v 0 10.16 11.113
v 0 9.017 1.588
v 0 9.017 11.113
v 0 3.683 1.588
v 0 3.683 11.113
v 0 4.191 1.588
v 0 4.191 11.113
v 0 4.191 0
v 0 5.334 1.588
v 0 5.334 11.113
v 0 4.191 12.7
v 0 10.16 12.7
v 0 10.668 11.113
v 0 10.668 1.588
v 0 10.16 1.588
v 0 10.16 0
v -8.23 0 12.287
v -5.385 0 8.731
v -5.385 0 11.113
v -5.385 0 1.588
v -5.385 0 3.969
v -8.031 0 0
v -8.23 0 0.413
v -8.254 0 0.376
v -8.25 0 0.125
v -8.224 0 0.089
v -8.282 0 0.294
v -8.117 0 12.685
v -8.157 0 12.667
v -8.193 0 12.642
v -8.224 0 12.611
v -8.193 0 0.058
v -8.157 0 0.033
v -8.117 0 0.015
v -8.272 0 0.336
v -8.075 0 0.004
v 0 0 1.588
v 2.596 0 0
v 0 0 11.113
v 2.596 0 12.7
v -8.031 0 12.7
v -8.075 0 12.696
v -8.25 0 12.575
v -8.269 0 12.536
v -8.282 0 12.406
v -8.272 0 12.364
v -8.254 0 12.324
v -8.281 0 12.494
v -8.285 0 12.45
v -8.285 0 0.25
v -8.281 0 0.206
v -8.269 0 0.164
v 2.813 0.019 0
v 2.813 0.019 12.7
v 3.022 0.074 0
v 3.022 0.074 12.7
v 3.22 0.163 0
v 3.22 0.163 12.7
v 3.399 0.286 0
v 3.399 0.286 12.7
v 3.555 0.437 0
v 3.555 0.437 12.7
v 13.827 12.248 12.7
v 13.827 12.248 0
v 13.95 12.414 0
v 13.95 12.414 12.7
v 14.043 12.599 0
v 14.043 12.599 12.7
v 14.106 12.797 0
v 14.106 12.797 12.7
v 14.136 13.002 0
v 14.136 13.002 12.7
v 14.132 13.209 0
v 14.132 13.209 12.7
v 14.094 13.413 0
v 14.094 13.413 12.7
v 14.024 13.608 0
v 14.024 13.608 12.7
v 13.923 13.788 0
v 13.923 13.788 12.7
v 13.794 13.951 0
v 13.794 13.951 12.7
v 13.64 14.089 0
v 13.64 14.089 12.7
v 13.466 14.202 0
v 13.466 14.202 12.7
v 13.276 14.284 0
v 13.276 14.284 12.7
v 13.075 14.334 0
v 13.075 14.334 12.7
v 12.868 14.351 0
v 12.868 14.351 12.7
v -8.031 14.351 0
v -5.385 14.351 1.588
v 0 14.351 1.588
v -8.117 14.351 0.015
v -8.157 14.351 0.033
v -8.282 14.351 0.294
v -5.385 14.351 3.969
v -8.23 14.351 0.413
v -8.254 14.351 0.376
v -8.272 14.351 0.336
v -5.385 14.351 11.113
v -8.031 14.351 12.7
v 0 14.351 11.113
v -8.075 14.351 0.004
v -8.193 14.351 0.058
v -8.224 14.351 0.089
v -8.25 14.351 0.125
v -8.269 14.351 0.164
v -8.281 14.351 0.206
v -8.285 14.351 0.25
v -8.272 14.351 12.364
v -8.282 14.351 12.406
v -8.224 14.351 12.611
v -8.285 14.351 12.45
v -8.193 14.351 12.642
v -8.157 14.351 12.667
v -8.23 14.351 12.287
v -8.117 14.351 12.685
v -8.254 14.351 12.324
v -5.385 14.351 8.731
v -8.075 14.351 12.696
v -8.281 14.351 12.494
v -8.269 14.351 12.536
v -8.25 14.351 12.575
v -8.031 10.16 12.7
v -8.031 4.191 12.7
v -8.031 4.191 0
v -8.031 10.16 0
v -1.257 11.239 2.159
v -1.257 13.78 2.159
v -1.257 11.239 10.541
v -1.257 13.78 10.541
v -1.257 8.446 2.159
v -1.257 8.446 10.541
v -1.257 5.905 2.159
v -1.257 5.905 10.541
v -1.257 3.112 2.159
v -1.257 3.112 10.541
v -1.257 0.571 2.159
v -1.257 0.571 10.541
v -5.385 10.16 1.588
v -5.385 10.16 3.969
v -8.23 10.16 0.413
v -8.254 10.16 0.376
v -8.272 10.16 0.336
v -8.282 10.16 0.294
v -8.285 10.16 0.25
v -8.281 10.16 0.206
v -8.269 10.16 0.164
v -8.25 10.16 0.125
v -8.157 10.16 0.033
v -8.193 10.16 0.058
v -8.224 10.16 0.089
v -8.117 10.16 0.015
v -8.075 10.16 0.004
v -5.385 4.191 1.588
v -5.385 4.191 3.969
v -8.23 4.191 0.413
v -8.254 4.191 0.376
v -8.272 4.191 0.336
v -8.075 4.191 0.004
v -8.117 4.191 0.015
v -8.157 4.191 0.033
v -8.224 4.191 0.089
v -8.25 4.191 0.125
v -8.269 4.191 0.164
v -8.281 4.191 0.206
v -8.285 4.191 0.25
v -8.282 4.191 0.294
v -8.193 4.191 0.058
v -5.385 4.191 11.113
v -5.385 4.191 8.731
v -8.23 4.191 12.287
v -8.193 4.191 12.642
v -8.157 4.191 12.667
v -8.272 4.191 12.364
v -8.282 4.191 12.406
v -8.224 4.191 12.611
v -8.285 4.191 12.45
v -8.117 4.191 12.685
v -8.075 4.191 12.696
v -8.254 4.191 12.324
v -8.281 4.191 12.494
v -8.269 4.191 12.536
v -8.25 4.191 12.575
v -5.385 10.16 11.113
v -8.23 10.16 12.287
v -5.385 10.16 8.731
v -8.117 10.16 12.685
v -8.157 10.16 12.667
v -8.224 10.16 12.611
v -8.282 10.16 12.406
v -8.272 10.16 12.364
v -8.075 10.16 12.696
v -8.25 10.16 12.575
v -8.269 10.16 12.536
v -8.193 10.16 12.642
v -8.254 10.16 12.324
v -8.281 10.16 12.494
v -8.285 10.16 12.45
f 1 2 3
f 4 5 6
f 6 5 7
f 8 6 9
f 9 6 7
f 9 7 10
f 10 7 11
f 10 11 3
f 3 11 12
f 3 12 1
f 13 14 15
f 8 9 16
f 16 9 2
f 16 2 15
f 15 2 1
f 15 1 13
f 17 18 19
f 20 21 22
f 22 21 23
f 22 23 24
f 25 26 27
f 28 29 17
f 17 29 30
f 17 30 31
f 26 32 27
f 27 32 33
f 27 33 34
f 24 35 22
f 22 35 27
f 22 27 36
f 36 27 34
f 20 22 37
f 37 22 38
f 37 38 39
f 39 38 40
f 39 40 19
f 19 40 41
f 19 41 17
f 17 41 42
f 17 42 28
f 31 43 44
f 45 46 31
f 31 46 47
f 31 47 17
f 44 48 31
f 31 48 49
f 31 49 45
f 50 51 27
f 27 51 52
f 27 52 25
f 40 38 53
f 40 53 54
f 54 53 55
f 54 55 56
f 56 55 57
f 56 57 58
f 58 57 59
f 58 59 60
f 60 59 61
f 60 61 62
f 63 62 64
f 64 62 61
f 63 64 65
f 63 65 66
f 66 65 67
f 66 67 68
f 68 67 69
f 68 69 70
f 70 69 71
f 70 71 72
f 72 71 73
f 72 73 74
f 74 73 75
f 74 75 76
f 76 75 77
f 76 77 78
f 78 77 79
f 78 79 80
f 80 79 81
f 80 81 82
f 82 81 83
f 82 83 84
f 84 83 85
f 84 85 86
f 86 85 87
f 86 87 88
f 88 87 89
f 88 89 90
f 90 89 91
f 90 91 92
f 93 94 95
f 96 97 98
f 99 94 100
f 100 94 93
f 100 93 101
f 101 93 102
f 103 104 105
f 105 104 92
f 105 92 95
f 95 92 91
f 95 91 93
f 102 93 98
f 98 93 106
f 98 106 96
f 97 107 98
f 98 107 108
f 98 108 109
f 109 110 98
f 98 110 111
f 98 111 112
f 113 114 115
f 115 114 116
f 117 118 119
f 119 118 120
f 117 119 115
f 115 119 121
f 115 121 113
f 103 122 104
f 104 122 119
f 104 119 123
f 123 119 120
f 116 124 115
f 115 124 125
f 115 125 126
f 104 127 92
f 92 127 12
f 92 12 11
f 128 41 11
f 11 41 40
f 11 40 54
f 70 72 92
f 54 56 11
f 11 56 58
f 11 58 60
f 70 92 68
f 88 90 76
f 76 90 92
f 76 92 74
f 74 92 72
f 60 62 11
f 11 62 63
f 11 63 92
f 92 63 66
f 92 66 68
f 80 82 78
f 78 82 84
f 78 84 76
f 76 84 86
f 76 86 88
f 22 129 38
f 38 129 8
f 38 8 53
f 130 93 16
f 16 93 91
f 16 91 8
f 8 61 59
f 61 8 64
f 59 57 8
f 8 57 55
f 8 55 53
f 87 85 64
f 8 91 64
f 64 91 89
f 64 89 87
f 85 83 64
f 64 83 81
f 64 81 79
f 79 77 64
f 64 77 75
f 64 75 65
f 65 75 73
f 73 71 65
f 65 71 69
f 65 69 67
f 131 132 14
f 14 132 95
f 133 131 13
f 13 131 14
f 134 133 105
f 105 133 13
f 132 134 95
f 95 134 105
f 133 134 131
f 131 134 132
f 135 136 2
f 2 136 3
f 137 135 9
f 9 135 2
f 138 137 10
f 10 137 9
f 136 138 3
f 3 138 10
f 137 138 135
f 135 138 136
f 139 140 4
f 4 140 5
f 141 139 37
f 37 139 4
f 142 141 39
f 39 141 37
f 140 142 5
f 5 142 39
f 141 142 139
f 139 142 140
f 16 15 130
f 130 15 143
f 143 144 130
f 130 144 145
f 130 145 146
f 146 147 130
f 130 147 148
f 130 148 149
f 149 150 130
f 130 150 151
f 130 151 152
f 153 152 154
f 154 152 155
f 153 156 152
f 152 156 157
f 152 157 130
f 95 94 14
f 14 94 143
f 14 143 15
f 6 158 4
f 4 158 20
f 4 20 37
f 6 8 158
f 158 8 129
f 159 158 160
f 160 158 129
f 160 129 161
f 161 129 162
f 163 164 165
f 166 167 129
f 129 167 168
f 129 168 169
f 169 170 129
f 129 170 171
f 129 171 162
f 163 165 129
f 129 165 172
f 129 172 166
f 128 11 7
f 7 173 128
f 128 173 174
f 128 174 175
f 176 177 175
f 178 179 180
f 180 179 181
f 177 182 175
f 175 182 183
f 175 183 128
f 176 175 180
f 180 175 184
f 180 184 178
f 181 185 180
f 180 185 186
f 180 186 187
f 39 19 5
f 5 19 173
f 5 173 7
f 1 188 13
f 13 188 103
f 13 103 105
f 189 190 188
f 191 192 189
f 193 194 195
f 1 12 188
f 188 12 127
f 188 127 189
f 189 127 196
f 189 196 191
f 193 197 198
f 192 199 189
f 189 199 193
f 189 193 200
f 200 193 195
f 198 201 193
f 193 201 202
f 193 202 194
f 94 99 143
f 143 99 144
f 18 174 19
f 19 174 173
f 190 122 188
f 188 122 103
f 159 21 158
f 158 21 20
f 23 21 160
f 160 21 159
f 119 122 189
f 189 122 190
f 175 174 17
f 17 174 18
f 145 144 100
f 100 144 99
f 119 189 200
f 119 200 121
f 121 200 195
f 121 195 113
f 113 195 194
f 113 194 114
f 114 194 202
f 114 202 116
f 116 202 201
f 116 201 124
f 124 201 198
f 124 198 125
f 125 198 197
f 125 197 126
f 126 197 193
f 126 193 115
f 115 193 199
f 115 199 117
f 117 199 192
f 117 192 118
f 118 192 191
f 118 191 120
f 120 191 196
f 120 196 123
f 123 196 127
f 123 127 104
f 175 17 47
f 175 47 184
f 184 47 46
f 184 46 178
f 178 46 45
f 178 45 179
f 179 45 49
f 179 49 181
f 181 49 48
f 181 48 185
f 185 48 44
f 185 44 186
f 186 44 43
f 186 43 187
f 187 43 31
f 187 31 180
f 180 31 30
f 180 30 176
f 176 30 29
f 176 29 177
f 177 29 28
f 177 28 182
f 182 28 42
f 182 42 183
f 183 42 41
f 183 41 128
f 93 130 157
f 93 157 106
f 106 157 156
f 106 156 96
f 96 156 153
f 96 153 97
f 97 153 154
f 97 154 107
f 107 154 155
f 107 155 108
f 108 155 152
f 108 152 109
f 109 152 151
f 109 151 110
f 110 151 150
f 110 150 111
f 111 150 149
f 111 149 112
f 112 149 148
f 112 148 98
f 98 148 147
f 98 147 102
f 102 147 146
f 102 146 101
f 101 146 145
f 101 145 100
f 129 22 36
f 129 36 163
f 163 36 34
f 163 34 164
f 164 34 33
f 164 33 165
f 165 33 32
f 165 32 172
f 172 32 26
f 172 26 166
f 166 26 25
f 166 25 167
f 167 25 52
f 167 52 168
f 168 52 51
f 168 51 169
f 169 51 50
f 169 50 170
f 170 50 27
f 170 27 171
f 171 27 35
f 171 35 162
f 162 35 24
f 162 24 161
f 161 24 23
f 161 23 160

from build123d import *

# Parameters (mm, degrees)
BOSS_EXTRUDE1_DEPTH           = 12.7
SKETCH3_W                     = 9.525
SKETCH3_H                     = 3.683
BOSS_EXTRUDE2_DEPTH           = 1.2573
BOSS_EXTRUDE2_DRAFT           = 24.44
BOSS_EXTRUDE2_PROFILE_2_DEPTH = 1.2573
BOSS_EXTRUDE2_PROFILE_2_DRAFT = 24.44
BOSS_EXTRUDE2_PROFILE_3_DEPTH = 1.2573
BOSS_EXTRUDE2_PROFILE_3_DRAFT = 24.44
SKETCH2_W                     = 1.5875
SKETCH2_H                     = 4.191
BOSS_EXTRUDE3_DEPTH           = 5.3848
SKETCH4_W                     = 3.96875
SKETCH4_H                     = 4.191
BOSS_EXTRUDE4_DEPTH           = 3.175
CUT_EXTRUDE1_START            = -14.351
CUT_EXTRUDE1_DEPTH            = 14.351
FILLET1_R                     = 0.254


with BuildPart() as part:
    # Sketch1 → Boss-Extrude1 (new body)
    with BuildSketch(Plane.XY):
        with BuildLine():
            Line((3.554693097, 0.436578304), (13.826745412, 12.247578304))
            ThreePointArc((13.826745412, 12.247578304), (14.024174489, 13.607523715), (12.868461386, 14.351))
            Line((12.868461386, 14.351), (0, 14.351))
            Line((0, 14.351), (0, 0))
            Line((0, 0), (2.596409071, 0))
            ThreePointArc((2.596409071, 0), (3.122932786, 0.114286897), (3.554693097, 0.436578304))
        make_face()
    extrude(amount=BOSS_EXTRUDE1_DEPTH)


with BuildPart() as boss_extrude2_tool:
    # Sketch3 → Boss-Extrude2 (with draft: the straight prism first)
    with BuildSketch(Plane.ZY):
        with Locations((6.35, 7.1755)):
            Rectangle(SKETCH3_W, SKETCH3_H)
    extrude(amount=BOSS_EXTRUDE2_DEPTH)
    # Boss-Extrude2: the draft: its side faces are tilted about the plane it starts from
    boss_extrude2_sides = [boss_extrude2_tool.faces().sort_by_distance(p)[0] for p in [
        (-0.62865, 7.1755, 1.5875),
        (-0.62865, 5.334, 6.35),
        (-0.62865, 7.1755, 11.1125),
        (-0.62865, 9.017, 6.35),
    ]]
    draft(boss_extrude2_sides, Plane.ZY, BOSS_EXTRUDE2_DRAFT)


with BuildPart() as part_1:
    add(part.part)

    # Boss-Extrude2: add boss_extrude2_tool
    add(boss_extrude2_tool.part)


with BuildPart() as boss_extrude2_profile_2_tool:
    # Sketch3 → Boss-Extrude2 profile 2 (with draft: the straight prism first)
    with BuildSketch(Plane.ZY):
        with Locations((6.35, 12.5095)):
            Rectangle(SKETCH3_W, SKETCH3_H)
    extrude(amount=BOSS_EXTRUDE2_PROFILE_2_DEPTH)
    # Boss-Extrude2 profile 2: the draft: its side faces are tilted about the plane it starts from
    boss_extrude2_profile_2_sides = [boss_extrude2_profile_2_tool.faces().sort_by_distance(p)[0] for p in [
        (-0.62865, 12.5095, 1.5875),
        (-0.62865, 10.668, 6.35),
        (-0.62865, 12.5095, 11.1125),
        (-0.62865, 14.351, 6.35),
    ]]
    draft(boss_extrude2_profile_2_sides, Plane.ZY, BOSS_EXTRUDE2_PROFILE_2_DRAFT)


with BuildPart() as part_2:
    add(part_1.part)

    # Boss-Extrude2 profile 2: add boss_extrude2_profile_2_tool
    add(boss_extrude2_profile_2_tool.part)


with BuildPart() as boss_extrude2_profile_3_tool:
    # Sketch3 → Boss-Extrude2 profile 3 (with draft: the straight prism first)
    with BuildSketch(Plane.ZY):
        with Locations((6.35, 1.8415)):
            Rectangle(SKETCH3_W, SKETCH3_H)
    extrude(amount=BOSS_EXTRUDE2_PROFILE_3_DEPTH)
    # Boss-Extrude2 profile 3: the draft: its side faces are tilted about the plane it starts from
    boss_extrude2_profile_3_sides = [boss_extrude2_profile_3_tool.faces().sort_by_distance(p)[0] for p in [
        (-0.62865, 1.8415, 1.5875),
        (-0.62865, 0, 6.35),
        (-0.62865, 1.8415, 11.1125),
        (-0.62865, 3.683, 6.35),
    ]]
    draft(boss_extrude2_profile_3_sides, Plane.ZY, BOSS_EXTRUDE2_PROFILE_3_DRAFT)


with BuildPart() as part_3:
    add(part_2.part)

    # Boss-Extrude2 profile 3: add boss_extrude2_profile_3_tool
    add(boss_extrude2_profile_3_tool.part)

    # Sketch2 → Boss-Extrude3 (add)
    with BuildSketch(Plane.ZY):
        with Locations((0.79375, 12.2555)):
            Rectangle(SKETCH2_W, SKETCH2_H)
        with Locations((0.79375, 2.0955)):
            Rectangle(SKETCH2_W, SKETCH2_H)
        with Locations((11.90625, 2.0955)):
            Rectangle(SKETCH2_W, SKETCH2_H)
        with Locations((11.90625, 12.2555)):
            Rectangle(SKETCH2_W, SKETCH2_H)
    extrude(amount=BOSS_EXTRUDE3_DEPTH)

    # Sketch4 → Boss-Extrude4 (add)
    with BuildSketch(Plane.ZY.offset(5.3848)):
        with Locations((1.984375, 12.2555)):
            Rectangle(SKETCH4_W, SKETCH4_H)
        with Locations((10.715625, 12.2555)):
            Rectangle(SKETCH4_W, SKETCH4_H)
        with Locations((10.715625, 2.0955)):
            Rectangle(SKETCH4_W, SKETCH4_H)
        with Locations((1.984375, 2.0955)):
            Rectangle(SKETCH4_W, SKETCH4_H)
    extrude(amount=BOSS_EXTRUDE4_DEPTH)

    # Sketch5 → Cut-Extrude1 (cut)
    with BuildSketch(Plane.XZ.offset(CUT_EXTRUDE1_START)):
        Polygon((-5.3848, 3.96875), (-8.5598, 0), (-8.5598, 3.96875), align=None)
        Polygon((-8.5598, 12.7), (-8.5598, 8.73125), (-5.3848, 8.73125), align=None)
    extrude(amount=CUT_EXTRUDE1_DEPTH, mode=Mode.SUBTRACT)

    # Fillet1
    fillet1_edges = [part_3.edges().sort_by_distance(p)[0] for p in [
        (-8.5598, 12.2555, 0),
        (-8.5598, 2.0955, 12.7),
        (-8.5598, 12.2555, 12.7),
        (-8.5598, 2.0955, 0),
    ]]
    fillet(fillet1_edges, radius=FILLET1_R)


solid = part_3.part
